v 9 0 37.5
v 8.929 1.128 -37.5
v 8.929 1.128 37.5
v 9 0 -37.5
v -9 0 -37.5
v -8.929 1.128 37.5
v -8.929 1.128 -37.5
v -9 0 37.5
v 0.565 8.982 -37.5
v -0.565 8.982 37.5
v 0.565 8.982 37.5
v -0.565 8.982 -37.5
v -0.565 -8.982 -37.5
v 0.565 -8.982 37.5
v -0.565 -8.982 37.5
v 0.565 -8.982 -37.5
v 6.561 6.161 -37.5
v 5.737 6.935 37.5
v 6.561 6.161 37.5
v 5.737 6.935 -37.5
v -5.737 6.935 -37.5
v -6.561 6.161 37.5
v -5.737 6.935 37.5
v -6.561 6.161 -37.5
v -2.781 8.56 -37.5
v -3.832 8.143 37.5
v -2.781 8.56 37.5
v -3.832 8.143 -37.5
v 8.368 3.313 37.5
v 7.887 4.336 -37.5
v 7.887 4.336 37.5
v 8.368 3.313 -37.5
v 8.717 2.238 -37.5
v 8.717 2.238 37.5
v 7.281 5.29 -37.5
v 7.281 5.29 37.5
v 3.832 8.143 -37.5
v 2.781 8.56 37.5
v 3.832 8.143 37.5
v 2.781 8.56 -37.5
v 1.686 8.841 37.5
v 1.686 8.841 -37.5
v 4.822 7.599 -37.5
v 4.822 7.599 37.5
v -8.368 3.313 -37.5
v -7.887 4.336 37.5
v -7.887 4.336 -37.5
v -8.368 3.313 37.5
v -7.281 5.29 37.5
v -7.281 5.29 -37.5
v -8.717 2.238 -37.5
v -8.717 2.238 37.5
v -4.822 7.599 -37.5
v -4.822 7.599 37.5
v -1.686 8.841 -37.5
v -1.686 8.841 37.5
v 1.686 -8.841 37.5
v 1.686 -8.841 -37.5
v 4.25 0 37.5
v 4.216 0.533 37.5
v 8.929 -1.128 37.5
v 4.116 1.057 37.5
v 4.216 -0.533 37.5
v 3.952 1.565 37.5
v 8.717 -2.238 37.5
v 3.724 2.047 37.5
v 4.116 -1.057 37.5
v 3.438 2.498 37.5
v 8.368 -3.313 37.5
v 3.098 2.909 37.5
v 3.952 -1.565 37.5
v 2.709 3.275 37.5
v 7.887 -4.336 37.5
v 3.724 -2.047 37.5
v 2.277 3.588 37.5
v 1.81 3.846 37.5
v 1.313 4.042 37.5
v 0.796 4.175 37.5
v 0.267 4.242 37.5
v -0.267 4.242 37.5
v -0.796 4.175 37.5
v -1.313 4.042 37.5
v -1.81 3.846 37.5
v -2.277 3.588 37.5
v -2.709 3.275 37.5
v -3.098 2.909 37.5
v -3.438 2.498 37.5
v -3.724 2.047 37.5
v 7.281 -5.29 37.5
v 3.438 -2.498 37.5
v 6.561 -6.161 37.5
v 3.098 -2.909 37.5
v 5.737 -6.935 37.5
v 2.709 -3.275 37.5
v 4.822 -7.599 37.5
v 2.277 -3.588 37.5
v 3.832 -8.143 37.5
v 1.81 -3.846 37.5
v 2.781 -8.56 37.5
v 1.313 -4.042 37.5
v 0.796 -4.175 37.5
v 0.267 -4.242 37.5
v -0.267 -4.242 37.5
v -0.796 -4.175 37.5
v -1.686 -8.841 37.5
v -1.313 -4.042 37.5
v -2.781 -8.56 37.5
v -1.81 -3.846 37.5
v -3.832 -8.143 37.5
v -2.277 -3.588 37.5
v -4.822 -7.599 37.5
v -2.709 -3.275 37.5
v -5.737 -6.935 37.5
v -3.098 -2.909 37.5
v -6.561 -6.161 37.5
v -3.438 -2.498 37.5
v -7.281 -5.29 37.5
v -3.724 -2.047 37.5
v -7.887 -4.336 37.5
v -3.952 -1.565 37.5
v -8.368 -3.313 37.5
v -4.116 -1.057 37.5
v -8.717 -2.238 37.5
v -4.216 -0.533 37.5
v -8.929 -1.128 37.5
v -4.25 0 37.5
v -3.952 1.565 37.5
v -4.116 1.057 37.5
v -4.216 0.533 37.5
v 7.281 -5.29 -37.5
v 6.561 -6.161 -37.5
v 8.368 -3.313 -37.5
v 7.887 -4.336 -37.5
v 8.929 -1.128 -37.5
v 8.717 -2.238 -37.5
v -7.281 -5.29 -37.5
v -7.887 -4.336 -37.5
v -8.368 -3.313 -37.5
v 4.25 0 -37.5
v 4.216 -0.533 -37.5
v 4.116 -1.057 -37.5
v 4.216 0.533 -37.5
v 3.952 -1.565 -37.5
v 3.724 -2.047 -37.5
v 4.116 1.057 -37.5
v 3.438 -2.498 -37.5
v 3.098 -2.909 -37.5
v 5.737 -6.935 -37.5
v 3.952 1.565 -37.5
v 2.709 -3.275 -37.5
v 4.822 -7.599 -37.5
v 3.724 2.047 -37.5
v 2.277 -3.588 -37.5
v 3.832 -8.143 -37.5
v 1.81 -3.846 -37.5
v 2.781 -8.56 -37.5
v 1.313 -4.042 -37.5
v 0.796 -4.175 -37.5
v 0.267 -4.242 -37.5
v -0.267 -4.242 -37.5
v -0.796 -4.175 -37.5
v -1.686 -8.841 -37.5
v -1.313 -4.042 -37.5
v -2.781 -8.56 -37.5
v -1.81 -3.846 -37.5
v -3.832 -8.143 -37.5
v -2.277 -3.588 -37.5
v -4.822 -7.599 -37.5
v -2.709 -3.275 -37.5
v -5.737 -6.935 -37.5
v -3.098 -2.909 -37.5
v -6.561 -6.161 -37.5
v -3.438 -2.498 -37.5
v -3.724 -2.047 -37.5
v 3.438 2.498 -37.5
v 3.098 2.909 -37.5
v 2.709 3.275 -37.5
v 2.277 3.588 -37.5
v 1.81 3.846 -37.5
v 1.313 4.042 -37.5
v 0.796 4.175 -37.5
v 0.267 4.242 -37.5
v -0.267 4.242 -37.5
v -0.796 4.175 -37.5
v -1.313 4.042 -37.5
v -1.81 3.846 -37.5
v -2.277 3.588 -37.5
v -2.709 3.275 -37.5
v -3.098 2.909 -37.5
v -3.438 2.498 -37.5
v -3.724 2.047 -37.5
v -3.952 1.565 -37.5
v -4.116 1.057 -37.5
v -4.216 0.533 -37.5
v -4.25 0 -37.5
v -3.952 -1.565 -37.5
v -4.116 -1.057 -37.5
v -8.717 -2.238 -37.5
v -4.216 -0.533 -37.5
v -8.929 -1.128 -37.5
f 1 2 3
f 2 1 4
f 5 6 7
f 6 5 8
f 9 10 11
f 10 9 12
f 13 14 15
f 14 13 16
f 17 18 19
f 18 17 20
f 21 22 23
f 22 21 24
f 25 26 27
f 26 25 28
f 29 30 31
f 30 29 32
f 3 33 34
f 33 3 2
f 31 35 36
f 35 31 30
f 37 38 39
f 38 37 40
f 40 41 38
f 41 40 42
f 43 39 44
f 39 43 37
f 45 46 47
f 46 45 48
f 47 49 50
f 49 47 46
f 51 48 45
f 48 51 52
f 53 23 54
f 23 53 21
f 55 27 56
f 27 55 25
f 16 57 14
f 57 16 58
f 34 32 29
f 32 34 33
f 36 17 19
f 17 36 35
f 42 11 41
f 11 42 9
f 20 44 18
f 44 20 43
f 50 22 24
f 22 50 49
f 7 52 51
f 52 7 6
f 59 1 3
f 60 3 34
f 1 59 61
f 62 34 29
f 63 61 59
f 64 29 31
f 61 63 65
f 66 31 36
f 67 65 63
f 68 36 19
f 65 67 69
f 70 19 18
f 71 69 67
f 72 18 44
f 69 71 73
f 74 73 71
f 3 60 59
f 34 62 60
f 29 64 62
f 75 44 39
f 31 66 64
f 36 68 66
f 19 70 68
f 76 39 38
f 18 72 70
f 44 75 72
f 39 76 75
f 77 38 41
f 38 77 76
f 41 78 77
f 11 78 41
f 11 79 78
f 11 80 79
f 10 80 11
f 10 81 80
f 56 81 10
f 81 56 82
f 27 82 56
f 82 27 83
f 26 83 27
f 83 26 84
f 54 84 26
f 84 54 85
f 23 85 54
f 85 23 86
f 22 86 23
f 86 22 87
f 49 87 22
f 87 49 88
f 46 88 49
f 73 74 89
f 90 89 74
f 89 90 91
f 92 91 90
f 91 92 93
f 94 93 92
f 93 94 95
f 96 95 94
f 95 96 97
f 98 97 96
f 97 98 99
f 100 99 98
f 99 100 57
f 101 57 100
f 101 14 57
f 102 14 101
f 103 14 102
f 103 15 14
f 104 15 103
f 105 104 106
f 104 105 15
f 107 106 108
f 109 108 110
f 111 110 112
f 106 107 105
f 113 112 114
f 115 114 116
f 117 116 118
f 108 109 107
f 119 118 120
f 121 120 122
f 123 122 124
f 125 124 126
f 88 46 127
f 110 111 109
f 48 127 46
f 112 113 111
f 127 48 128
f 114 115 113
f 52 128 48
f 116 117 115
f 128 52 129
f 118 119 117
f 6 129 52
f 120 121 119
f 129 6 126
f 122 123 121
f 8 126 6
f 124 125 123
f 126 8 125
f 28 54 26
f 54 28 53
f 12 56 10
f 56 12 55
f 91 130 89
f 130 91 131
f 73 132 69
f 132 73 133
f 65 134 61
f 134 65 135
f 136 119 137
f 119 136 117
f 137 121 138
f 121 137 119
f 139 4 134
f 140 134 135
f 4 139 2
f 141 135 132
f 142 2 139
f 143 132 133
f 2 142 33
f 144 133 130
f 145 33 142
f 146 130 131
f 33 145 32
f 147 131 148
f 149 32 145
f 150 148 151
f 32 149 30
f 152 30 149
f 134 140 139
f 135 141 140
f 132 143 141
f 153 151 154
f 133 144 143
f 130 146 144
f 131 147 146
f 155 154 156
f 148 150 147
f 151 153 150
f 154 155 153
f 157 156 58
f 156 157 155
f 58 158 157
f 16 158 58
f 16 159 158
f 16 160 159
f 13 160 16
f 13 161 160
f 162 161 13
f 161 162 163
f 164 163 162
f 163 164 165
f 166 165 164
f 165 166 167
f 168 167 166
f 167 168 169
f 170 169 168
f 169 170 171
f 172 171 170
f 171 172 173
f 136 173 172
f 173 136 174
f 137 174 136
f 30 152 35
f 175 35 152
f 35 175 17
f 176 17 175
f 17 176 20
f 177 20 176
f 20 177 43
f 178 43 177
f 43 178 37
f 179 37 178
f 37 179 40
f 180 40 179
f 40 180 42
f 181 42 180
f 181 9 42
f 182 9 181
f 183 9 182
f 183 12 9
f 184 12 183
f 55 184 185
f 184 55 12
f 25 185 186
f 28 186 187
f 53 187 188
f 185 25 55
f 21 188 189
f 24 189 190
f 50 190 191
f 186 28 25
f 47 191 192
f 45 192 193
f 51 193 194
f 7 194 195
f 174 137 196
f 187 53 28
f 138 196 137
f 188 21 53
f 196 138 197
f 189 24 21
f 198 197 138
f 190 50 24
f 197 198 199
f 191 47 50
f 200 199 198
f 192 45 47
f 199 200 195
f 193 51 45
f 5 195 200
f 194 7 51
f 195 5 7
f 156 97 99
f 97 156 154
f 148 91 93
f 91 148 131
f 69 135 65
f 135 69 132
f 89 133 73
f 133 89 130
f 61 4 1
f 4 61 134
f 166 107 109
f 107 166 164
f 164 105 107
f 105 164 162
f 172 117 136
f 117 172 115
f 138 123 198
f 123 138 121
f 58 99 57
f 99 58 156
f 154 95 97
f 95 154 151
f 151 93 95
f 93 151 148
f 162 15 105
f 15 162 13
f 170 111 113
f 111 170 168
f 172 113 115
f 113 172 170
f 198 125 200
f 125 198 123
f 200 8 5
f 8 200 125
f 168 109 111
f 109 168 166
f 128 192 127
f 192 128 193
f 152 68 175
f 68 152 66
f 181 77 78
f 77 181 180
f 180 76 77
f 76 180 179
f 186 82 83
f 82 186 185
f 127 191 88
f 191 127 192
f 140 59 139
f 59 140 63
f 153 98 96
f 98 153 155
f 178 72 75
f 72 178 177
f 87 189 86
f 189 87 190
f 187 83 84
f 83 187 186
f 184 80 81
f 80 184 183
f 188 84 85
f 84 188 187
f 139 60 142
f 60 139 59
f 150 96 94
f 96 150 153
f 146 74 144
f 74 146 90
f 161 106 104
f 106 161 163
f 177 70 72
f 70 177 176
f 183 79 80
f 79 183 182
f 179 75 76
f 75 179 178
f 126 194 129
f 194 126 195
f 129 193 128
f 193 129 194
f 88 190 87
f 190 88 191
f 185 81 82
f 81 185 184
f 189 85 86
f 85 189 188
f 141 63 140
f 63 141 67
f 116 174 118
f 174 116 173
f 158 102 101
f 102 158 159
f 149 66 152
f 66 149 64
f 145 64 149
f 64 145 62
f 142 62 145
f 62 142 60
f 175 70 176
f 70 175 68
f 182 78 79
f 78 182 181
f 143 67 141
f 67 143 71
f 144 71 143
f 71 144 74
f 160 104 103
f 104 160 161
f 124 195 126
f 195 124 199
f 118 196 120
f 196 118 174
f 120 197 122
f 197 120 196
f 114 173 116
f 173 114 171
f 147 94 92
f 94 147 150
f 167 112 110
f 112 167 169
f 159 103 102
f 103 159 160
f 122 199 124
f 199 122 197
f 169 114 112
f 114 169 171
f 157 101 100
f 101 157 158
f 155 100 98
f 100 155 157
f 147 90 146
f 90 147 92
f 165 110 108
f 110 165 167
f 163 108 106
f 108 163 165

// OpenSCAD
$fn = 50;


difference() {
	union() {
		translate(v = [0, 0, -37.5000000000]) {
			cylinder(h = 75, r = 9.0000000000);
		}
	}
	union() {
		translate(v = [0, 0, -100.0000000000]) {
			cylinder(h = 200, r = 4.2500000000);
		}
	}
}
